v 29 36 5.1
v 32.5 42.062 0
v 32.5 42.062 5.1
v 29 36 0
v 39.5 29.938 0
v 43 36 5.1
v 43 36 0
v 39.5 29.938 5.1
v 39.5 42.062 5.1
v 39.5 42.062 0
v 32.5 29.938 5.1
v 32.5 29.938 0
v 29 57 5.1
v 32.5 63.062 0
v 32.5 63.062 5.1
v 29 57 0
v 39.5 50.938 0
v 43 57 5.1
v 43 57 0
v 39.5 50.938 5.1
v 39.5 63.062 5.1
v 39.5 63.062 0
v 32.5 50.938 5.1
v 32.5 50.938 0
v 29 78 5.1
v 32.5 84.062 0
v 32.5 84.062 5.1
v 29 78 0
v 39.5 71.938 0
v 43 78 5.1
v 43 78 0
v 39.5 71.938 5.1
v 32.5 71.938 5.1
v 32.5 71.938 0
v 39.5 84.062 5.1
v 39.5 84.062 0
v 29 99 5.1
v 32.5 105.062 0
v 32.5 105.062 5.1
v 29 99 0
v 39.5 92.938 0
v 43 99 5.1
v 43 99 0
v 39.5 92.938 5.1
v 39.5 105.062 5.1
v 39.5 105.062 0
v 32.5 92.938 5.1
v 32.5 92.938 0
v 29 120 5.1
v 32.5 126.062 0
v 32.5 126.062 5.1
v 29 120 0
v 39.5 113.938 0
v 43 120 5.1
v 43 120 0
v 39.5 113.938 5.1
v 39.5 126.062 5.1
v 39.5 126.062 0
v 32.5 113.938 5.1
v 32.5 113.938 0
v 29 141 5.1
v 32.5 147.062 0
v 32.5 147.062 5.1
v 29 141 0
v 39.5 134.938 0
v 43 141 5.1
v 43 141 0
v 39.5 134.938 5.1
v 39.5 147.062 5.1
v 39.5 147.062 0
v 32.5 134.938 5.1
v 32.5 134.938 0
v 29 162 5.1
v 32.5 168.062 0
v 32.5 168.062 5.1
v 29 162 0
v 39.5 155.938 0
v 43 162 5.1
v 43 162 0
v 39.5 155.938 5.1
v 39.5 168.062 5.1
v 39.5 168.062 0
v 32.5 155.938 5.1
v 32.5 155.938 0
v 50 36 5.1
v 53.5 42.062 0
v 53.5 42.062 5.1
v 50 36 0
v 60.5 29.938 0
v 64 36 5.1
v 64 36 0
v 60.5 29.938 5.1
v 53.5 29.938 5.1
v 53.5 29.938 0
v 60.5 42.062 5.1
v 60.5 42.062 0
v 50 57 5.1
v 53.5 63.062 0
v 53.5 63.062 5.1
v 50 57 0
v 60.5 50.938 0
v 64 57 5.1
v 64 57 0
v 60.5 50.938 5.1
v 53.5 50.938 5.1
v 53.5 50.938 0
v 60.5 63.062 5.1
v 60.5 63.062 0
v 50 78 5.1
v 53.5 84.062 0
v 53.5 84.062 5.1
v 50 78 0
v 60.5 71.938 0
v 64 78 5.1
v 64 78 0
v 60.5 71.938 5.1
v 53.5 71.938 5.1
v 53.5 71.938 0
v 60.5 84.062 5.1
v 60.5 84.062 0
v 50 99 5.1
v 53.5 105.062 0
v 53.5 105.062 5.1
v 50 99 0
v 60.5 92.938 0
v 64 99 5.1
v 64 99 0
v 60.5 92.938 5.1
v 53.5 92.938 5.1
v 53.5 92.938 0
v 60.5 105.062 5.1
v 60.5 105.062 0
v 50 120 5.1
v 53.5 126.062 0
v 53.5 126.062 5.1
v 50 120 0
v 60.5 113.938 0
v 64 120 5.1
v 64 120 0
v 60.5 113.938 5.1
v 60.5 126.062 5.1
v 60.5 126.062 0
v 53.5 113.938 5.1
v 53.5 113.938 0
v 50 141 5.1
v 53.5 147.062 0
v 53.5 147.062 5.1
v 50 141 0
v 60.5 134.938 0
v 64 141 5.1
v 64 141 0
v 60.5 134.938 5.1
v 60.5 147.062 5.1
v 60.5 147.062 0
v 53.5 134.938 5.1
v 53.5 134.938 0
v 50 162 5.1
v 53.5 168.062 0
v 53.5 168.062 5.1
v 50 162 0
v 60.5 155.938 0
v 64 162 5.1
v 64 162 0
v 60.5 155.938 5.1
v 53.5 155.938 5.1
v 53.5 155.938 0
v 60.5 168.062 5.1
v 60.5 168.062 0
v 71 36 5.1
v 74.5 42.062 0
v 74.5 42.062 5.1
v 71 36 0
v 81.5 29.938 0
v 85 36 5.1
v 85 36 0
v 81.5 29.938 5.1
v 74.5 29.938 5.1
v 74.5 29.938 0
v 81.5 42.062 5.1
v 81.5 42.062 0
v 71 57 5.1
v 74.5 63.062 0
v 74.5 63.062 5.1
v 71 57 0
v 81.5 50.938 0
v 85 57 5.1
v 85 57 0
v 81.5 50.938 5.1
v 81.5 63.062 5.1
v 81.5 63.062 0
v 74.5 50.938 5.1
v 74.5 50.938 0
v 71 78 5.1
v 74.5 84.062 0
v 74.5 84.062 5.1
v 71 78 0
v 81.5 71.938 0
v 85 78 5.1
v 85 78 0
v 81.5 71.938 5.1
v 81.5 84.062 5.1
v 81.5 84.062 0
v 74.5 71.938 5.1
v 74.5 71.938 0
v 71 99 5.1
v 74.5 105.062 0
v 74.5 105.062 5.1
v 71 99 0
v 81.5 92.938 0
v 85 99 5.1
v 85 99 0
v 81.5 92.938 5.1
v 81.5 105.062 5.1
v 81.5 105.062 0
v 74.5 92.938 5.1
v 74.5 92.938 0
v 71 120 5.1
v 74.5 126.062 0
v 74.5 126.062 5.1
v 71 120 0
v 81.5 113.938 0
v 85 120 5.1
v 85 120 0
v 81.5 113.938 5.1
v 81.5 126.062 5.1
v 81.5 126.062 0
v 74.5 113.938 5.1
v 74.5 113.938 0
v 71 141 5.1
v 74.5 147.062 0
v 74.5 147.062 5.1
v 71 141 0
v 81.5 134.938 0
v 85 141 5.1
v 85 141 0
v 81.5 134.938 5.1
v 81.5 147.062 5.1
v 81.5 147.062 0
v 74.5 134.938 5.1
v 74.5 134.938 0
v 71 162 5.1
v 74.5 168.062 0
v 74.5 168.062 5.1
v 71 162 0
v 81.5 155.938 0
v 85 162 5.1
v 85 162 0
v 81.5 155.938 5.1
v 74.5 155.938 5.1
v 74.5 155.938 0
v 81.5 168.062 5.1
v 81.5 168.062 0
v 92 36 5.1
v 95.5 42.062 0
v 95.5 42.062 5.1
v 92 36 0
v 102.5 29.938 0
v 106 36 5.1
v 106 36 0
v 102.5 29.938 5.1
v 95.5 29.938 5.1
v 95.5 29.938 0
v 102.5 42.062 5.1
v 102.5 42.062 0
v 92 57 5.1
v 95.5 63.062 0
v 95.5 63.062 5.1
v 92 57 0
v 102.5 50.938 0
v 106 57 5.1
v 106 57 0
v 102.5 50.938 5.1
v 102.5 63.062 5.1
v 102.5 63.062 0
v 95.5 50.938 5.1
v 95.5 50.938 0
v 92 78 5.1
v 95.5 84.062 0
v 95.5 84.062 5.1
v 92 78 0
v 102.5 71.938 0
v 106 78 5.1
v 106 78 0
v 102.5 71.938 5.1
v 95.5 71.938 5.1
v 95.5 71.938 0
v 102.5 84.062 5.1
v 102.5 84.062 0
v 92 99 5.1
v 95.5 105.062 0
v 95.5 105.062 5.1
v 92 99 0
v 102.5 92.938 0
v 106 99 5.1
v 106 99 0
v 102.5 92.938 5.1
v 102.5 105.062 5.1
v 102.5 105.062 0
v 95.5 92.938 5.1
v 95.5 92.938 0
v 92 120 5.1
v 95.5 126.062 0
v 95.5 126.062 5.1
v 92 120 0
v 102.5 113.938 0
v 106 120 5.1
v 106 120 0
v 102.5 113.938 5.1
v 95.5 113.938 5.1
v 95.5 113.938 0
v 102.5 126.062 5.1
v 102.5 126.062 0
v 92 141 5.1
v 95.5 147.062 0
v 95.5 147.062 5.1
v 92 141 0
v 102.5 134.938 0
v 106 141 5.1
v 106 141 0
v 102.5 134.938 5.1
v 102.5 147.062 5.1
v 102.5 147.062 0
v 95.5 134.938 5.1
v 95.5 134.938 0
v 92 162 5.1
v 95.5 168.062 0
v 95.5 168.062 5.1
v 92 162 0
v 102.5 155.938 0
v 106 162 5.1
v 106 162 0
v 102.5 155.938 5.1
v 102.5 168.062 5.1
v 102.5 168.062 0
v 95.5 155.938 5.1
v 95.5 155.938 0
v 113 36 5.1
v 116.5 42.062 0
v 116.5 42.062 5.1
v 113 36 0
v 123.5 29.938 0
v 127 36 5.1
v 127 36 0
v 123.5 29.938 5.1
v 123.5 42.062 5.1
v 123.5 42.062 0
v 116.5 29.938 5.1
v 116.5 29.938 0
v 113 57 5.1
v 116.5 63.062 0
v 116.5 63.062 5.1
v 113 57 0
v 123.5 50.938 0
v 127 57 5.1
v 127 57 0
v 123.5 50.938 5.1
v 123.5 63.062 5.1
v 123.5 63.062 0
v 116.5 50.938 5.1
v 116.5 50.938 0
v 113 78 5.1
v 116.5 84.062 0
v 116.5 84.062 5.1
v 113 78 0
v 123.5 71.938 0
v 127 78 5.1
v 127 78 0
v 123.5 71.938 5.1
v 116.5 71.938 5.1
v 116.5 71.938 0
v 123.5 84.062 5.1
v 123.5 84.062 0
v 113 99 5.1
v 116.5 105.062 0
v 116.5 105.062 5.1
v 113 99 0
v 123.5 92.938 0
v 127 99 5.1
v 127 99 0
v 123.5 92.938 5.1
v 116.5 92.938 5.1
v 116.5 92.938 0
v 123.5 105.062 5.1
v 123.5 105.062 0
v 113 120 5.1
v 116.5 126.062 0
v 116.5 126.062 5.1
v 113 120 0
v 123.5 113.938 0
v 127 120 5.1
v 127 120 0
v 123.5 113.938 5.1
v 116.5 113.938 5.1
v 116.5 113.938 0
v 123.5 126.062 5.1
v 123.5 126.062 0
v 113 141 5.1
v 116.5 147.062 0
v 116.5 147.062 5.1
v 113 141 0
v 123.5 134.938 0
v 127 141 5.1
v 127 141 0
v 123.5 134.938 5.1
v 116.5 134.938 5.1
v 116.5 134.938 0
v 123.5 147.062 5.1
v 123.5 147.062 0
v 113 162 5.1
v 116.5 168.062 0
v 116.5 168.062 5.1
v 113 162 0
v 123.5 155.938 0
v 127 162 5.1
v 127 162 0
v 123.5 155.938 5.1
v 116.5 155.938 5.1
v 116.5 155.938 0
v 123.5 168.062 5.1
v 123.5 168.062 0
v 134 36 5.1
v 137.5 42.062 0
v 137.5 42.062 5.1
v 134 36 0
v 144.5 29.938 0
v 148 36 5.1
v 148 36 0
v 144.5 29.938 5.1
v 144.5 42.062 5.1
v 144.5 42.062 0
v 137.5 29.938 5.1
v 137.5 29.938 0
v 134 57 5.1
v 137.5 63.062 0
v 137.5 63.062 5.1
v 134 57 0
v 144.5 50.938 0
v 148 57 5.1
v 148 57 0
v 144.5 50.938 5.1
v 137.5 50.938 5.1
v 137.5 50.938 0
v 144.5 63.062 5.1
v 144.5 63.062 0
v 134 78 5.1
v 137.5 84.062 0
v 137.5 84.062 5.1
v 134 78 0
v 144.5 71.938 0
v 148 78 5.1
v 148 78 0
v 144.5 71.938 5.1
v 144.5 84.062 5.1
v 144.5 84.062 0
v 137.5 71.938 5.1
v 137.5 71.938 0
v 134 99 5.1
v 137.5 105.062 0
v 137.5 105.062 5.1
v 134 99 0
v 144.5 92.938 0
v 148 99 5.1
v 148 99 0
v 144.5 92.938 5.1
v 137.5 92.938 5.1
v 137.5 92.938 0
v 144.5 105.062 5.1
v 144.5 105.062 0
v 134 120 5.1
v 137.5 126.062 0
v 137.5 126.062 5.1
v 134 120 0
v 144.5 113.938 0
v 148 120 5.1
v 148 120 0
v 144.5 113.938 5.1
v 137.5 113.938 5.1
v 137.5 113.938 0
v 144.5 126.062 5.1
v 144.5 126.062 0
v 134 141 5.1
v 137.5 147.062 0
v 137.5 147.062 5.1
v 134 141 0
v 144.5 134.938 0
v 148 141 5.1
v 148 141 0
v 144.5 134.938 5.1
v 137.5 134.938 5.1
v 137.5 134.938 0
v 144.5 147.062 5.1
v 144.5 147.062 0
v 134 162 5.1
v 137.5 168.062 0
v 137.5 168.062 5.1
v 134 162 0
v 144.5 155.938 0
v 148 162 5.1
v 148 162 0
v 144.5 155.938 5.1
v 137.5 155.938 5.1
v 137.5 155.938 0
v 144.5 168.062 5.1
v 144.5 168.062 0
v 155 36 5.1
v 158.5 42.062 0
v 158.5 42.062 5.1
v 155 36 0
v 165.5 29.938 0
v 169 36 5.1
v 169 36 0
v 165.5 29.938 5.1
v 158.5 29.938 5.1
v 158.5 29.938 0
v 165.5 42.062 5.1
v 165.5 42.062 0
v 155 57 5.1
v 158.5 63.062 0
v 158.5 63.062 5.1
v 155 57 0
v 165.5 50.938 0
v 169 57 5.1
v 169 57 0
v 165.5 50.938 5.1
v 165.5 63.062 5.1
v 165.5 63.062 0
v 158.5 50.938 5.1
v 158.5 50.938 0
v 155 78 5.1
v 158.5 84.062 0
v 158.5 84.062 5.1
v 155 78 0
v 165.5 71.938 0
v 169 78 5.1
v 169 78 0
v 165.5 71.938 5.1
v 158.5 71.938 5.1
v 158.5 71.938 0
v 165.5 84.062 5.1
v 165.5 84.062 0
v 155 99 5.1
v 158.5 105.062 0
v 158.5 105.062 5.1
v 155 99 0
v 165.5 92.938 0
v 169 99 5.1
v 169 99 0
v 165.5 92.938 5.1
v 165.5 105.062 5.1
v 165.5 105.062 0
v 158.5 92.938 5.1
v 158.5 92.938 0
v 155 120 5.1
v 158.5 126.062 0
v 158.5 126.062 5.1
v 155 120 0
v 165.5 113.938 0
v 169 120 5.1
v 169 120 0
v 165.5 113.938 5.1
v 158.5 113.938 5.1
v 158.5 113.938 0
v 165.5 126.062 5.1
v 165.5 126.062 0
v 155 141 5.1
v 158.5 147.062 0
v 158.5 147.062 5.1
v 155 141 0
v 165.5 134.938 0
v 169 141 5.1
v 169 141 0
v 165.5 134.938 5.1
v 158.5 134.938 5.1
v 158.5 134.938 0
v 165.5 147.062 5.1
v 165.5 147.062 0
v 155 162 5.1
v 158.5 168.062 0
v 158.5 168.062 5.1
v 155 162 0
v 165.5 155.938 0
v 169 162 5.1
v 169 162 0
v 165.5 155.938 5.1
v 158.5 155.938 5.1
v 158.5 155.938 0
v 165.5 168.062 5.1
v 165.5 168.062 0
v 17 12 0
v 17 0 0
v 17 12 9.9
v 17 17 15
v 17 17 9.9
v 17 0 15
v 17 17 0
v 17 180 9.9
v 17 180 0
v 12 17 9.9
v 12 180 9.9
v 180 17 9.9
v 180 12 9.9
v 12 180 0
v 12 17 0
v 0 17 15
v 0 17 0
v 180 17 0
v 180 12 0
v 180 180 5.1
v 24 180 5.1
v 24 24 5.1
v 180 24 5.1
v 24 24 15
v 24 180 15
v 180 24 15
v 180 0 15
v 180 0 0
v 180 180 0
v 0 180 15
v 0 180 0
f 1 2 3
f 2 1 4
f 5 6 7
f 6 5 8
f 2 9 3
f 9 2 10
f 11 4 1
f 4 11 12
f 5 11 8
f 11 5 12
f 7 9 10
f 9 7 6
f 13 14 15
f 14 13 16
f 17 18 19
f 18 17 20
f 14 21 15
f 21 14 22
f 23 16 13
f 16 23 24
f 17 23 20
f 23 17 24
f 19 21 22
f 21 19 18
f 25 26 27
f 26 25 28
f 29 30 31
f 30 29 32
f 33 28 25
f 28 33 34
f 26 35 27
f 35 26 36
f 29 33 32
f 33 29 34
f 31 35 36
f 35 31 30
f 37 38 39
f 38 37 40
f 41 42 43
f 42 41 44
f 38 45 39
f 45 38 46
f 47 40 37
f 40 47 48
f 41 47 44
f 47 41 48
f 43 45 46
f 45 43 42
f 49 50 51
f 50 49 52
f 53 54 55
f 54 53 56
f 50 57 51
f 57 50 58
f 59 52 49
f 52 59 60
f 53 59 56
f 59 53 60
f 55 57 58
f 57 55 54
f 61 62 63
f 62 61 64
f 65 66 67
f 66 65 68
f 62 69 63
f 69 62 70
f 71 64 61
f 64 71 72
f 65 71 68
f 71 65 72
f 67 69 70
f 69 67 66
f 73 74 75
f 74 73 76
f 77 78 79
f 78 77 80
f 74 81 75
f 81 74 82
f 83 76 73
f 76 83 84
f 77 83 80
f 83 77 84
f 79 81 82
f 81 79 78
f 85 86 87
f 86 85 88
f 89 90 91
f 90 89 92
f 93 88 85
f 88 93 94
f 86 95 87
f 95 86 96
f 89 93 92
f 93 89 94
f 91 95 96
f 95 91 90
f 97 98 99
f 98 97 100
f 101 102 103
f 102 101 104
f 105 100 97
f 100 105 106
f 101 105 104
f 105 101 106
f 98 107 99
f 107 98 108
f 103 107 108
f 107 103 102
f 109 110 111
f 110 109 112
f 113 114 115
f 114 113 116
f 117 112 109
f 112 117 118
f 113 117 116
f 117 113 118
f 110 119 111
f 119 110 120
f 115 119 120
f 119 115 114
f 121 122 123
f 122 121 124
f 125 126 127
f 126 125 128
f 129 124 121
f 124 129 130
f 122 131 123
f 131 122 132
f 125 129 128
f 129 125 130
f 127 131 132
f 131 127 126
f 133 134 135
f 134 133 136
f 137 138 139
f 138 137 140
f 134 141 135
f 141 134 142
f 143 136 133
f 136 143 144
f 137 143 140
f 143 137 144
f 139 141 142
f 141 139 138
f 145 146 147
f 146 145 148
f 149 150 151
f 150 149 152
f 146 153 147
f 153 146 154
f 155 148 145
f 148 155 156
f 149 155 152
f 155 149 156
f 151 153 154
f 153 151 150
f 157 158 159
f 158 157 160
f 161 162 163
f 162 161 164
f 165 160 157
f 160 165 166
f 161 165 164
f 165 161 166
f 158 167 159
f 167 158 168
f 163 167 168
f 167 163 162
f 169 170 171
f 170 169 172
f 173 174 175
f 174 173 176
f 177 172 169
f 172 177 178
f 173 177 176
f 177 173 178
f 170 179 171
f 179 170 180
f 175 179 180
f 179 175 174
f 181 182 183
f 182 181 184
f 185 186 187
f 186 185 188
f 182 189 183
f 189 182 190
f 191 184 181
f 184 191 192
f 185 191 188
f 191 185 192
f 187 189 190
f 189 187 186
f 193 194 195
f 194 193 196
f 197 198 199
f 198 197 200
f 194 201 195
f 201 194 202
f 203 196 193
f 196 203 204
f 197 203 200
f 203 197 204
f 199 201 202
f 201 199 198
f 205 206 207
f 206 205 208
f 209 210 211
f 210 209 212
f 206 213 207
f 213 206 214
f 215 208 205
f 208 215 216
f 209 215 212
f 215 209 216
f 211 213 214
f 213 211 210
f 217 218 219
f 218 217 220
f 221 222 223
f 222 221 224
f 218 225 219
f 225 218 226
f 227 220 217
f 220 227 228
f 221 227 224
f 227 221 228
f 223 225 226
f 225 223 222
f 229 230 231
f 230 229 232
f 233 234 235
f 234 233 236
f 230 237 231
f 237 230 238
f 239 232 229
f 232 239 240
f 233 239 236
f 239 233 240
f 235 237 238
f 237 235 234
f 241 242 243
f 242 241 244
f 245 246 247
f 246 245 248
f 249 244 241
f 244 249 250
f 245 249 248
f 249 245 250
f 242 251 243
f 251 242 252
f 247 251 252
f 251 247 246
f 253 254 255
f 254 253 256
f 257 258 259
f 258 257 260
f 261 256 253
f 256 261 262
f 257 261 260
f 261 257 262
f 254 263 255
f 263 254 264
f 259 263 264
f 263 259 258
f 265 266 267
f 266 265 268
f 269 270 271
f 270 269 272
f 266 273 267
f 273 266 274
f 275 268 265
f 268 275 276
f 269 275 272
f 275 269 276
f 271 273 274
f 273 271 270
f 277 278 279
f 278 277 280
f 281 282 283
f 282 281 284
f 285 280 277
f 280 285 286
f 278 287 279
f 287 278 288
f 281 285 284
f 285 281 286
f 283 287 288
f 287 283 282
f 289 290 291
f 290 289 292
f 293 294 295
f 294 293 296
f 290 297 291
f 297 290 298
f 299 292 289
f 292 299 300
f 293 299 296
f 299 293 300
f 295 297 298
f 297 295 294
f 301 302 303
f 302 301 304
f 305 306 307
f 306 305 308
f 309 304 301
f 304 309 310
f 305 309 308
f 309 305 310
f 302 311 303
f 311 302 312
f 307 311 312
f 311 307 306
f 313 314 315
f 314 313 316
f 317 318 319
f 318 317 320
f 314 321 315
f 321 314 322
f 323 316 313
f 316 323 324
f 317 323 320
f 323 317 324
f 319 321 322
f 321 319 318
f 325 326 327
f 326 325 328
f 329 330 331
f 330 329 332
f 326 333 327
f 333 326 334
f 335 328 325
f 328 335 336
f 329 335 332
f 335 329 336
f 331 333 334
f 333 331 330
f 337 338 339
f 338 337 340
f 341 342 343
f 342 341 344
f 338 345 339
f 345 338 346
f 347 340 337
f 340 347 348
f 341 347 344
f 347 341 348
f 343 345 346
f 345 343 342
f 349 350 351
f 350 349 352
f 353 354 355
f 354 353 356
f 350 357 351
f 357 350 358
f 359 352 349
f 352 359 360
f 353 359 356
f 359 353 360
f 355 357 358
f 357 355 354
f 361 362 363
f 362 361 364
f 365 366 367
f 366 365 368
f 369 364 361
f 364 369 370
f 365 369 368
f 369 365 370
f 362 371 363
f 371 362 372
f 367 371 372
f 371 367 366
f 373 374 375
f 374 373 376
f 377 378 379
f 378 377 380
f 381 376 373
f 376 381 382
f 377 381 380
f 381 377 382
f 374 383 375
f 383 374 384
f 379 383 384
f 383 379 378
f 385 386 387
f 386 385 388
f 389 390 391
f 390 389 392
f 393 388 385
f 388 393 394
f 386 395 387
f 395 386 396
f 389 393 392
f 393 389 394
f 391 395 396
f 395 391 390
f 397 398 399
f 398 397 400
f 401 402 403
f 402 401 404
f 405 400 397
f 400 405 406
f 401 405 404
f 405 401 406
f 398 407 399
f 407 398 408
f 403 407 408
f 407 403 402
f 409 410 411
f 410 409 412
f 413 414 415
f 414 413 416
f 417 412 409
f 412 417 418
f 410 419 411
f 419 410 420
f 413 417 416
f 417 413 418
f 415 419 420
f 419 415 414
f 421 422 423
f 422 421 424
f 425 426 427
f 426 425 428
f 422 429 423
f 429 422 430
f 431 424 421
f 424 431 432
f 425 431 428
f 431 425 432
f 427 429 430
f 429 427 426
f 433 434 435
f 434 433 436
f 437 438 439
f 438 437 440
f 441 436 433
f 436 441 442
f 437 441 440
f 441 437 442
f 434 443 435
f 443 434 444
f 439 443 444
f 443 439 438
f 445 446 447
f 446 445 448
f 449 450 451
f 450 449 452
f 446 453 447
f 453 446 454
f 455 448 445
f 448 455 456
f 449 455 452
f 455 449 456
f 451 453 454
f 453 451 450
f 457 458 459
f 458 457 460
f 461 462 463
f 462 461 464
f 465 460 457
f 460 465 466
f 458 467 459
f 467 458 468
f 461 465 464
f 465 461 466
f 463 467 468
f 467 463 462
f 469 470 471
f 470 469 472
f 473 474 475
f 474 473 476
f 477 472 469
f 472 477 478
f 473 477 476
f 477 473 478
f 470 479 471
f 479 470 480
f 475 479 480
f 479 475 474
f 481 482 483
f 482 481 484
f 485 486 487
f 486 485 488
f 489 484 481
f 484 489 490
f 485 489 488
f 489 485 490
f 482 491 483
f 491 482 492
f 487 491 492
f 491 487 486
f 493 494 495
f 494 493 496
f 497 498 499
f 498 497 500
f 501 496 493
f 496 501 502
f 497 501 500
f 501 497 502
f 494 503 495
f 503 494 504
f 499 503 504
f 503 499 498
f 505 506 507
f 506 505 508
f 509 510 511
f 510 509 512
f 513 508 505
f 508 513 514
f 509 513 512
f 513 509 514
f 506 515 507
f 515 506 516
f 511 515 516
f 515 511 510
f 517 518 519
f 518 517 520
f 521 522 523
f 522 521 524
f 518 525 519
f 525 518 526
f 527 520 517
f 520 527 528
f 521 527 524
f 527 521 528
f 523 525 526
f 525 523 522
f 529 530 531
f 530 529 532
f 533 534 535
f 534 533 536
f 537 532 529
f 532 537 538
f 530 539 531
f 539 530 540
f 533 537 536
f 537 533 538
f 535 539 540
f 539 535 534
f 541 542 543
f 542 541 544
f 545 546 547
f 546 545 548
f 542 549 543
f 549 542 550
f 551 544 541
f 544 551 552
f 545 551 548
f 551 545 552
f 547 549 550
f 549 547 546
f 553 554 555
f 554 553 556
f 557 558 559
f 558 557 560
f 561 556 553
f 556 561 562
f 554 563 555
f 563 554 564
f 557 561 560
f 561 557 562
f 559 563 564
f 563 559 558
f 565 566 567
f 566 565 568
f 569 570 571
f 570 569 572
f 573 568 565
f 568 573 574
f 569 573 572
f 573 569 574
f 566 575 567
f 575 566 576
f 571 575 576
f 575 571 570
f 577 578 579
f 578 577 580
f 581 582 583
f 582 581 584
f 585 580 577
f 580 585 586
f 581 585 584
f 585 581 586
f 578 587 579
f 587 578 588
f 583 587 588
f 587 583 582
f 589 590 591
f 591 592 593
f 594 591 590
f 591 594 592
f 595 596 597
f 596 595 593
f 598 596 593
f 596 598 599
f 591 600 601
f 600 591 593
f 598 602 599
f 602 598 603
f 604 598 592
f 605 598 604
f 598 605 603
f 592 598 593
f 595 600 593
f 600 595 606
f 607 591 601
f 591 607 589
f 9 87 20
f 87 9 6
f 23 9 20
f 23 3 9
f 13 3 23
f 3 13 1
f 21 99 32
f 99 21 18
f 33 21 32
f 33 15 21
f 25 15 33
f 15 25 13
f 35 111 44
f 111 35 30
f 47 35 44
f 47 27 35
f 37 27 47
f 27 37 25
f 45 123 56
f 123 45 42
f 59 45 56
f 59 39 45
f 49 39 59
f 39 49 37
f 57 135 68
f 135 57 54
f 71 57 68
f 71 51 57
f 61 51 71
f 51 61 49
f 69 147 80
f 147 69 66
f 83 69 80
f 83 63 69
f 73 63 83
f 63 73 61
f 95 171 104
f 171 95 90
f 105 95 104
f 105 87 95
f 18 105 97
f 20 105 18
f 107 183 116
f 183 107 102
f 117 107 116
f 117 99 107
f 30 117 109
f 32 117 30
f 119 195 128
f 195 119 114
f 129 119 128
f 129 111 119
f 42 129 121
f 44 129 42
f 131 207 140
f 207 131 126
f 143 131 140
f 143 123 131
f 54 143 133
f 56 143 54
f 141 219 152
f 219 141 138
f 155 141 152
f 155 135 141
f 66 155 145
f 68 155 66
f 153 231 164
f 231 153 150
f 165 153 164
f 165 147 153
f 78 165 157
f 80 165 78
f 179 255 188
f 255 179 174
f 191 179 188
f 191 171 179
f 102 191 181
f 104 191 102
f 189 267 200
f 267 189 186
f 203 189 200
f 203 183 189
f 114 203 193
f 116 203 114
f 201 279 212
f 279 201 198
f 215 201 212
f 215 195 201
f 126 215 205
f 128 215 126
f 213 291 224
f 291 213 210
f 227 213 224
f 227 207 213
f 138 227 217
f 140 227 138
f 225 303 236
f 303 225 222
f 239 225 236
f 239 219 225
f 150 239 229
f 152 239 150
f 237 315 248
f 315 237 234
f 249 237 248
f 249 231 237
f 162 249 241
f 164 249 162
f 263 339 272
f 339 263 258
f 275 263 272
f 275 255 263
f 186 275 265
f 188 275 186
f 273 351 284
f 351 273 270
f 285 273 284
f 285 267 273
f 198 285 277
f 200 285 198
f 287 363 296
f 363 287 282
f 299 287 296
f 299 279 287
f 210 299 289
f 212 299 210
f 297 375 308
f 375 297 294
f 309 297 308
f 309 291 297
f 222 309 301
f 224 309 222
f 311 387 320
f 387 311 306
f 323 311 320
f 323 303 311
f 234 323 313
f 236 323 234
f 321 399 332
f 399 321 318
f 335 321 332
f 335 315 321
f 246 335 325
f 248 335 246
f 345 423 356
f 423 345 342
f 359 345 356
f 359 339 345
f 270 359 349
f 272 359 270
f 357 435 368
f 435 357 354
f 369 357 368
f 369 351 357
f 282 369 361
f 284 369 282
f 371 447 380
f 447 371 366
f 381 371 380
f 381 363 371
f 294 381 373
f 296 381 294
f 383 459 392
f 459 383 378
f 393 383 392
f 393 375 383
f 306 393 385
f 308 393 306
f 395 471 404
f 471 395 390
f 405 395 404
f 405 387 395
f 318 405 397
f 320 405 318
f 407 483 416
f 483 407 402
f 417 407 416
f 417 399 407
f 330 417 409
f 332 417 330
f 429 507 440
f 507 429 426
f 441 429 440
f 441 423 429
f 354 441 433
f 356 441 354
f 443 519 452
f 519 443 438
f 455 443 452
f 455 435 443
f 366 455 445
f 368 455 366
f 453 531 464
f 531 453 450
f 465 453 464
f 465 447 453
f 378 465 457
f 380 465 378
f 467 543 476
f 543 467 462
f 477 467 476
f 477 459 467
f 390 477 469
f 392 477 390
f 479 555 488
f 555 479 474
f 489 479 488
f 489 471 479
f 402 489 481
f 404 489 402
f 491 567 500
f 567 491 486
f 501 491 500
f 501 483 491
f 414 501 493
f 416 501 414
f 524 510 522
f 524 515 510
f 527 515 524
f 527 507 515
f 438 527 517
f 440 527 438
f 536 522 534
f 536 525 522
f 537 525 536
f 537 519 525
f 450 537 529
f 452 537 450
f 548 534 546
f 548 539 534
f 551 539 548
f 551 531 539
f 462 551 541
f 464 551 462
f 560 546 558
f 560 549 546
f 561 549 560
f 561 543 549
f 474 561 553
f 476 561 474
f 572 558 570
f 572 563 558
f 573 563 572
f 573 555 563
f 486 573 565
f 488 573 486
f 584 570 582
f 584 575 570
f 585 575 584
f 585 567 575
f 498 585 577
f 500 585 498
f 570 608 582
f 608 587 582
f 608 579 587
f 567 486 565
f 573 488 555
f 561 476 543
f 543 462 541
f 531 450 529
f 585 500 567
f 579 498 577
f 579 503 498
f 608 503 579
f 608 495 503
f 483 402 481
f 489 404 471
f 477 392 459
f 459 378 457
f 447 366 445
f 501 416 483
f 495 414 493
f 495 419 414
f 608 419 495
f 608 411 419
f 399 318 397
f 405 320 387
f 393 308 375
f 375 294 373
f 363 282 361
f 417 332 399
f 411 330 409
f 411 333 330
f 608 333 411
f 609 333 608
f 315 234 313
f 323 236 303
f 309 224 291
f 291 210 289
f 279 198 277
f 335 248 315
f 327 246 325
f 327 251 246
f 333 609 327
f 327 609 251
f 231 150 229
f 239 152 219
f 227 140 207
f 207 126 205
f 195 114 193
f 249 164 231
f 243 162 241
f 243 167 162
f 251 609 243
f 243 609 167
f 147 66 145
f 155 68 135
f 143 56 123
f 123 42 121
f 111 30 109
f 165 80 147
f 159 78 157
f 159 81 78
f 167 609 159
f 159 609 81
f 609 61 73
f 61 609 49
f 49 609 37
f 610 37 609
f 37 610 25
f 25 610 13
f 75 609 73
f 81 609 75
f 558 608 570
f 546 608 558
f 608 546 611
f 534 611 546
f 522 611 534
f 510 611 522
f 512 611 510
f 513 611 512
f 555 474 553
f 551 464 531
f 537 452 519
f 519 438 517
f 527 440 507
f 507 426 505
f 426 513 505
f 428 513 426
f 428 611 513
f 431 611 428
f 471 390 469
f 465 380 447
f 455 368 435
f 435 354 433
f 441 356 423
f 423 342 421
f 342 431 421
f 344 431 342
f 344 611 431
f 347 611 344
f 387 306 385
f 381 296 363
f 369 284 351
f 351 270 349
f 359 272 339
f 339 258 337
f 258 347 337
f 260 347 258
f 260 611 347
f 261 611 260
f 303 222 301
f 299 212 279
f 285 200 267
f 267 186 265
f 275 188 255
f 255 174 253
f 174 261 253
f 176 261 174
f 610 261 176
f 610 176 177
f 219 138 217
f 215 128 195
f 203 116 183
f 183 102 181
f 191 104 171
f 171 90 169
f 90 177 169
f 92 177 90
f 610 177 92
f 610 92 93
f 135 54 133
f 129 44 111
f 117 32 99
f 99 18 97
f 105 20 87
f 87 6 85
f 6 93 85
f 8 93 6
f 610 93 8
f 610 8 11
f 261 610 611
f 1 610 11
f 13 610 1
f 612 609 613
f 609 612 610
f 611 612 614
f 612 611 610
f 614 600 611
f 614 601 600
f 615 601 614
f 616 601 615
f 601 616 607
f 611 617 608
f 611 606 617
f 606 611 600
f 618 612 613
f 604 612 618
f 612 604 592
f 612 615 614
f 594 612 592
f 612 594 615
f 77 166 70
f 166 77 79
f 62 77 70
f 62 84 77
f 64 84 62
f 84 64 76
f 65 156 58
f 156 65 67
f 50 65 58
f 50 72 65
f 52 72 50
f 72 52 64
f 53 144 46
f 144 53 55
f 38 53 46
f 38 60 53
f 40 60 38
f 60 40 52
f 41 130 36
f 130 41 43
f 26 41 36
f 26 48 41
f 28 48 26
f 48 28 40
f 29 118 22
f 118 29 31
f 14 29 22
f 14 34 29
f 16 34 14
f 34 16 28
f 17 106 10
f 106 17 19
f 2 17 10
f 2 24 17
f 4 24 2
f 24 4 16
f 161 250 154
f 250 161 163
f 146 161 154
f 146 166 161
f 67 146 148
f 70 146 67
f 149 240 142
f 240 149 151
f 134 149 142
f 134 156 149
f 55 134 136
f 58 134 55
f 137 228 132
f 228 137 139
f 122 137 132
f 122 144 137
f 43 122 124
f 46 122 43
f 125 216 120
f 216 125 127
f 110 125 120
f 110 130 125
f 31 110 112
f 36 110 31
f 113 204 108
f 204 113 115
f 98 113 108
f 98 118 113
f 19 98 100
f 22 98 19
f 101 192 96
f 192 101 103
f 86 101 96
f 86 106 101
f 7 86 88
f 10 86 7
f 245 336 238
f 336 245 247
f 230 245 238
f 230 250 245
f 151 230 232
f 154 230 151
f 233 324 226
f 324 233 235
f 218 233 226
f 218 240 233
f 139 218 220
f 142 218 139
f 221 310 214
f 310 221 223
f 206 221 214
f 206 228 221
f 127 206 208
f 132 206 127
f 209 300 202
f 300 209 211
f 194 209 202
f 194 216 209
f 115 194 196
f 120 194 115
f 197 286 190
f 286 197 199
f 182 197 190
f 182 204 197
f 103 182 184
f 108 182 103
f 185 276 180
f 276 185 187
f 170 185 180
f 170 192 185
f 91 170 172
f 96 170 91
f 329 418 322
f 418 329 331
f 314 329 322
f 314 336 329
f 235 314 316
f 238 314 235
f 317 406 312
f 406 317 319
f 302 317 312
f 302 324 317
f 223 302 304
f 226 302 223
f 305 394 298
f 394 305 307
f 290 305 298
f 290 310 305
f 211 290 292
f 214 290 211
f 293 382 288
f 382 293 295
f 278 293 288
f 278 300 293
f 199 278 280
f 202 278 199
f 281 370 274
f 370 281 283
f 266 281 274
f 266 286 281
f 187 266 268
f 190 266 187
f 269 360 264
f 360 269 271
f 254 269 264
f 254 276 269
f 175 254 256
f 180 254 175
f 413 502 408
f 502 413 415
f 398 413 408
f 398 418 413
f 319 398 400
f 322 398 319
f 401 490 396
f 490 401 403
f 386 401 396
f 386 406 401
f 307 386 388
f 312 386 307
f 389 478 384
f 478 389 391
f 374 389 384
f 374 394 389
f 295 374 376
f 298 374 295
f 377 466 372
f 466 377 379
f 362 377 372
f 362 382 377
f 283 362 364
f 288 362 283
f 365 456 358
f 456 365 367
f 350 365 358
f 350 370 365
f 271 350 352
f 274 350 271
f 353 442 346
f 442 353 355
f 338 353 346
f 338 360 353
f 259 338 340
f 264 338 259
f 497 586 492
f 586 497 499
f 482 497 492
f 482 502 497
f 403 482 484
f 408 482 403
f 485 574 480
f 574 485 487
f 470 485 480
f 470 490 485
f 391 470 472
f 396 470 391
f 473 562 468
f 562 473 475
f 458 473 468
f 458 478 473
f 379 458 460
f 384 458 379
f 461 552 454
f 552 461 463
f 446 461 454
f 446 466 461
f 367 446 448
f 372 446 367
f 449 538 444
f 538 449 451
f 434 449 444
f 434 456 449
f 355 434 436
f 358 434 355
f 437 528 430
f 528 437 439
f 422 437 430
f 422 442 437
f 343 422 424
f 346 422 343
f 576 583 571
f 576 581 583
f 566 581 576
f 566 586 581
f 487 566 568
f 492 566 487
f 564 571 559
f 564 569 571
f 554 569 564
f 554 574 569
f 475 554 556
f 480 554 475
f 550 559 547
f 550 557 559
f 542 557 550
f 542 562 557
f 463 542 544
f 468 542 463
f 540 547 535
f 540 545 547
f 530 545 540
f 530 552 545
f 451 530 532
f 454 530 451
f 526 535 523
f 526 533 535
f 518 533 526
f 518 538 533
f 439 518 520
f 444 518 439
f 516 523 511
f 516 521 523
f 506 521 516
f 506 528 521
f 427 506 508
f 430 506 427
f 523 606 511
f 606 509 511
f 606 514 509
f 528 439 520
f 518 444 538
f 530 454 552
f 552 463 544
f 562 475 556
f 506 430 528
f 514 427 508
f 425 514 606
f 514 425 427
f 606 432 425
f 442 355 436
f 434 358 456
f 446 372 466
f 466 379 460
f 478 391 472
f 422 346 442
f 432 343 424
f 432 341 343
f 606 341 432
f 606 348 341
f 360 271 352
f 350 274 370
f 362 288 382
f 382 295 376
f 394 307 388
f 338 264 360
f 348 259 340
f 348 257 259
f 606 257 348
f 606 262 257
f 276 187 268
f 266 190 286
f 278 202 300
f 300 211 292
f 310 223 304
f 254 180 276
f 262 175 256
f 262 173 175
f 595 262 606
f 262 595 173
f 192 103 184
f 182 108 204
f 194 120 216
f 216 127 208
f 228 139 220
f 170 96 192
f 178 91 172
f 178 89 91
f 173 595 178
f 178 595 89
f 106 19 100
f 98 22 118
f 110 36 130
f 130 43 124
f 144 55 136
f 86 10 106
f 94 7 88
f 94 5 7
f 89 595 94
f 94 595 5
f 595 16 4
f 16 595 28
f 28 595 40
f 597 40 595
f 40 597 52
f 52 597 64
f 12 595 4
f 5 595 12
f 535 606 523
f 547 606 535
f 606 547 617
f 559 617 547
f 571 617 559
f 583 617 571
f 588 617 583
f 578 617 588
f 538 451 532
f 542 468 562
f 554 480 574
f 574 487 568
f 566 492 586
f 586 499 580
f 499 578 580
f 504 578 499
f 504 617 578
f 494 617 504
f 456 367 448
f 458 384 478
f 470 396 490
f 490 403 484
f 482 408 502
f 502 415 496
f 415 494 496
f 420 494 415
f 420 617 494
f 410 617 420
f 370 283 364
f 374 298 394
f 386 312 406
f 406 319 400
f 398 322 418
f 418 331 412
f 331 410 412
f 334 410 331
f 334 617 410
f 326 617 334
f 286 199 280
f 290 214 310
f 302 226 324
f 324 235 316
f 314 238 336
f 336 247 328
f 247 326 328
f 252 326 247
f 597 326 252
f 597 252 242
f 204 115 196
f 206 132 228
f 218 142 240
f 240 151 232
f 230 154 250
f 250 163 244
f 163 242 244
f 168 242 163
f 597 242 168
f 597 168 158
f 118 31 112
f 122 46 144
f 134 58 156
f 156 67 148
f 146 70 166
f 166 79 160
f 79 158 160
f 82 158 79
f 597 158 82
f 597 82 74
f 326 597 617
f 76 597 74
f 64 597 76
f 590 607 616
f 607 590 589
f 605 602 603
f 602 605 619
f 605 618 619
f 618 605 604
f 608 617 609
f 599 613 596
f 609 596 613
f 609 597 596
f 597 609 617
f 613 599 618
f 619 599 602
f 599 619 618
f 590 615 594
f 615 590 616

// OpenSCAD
// Shelf to mount power brick under desk

width = 180;
depth = 180;
height = 15;

// Channel for lip under desk
channel_inset = 12;
channel_width = 5;
channel_height = 10;

// Cutout for extra space while still leaving channels supported
cutout_height = channel_height;
cutout_inset = channel_inset;

// For making sure things are properly cut out
epsilon = 0.1;

// Cutouts to reduce material and provide airflow
holes_radius = 7;
holes_offset = channel_inset + channel_width + cutout_inset + holes_radius;
holes_spacing = 1;

// Thanks https://gist.github.com/lorennorman/1534990
module hexagon(radius)
{
  circle(r=radius,$fn=6);
}

module hexagon_lattice(rows, cols, row_spacing, col_spacing, height, radius) {
    union() {
        for (row = [0:1:rows]) {
            for(col = [0:1:cols]) {
                translate([row * (20 + row_spacing), col * (20 + col_spacing), 0]) {
                    color("blue") linear_extrude(height) hexagon(radius);
                }
            }
        }
    }
}

difference() {
    cube([width, depth, height]);
    // Various cutouts
    union() {
        // Channels
        translate([channel_inset, -epsilon, -epsilon]) {
            cube([channel_width, depth + 2*epsilon, channel_height]);
        }
        translate([-epsilon,  channel_inset, -epsilon]) {
            cube([depth + 2 * epsilon, channel_width, channel_height]);
        }
        // Cutout for extra space and to reduce materials
        translate([channel_inset + cutout_inset, channel_inset + cutout_inset, (height - cutout_height + epsilon)]) {
            cube([width, depth, cutout_height]);
        }
        // Extra bit left over from joining channels
        translate([-epsilon, -epsilon, -epsilon]) {
            cube([channel_inset + channel_width + epsilon, channel_inset + channel_width + epsilon, height + 2 * epsilon]);
        }
        translate([holes_offset, holes_offset , -epsilon]) {
            hexagon_lattice(rows=6, cols=6, height=height + 2 * epsilon, radius=holes_radius, row_spacing=holes_spacing, col_spacing=holes_spacing);
        }
    };
};
